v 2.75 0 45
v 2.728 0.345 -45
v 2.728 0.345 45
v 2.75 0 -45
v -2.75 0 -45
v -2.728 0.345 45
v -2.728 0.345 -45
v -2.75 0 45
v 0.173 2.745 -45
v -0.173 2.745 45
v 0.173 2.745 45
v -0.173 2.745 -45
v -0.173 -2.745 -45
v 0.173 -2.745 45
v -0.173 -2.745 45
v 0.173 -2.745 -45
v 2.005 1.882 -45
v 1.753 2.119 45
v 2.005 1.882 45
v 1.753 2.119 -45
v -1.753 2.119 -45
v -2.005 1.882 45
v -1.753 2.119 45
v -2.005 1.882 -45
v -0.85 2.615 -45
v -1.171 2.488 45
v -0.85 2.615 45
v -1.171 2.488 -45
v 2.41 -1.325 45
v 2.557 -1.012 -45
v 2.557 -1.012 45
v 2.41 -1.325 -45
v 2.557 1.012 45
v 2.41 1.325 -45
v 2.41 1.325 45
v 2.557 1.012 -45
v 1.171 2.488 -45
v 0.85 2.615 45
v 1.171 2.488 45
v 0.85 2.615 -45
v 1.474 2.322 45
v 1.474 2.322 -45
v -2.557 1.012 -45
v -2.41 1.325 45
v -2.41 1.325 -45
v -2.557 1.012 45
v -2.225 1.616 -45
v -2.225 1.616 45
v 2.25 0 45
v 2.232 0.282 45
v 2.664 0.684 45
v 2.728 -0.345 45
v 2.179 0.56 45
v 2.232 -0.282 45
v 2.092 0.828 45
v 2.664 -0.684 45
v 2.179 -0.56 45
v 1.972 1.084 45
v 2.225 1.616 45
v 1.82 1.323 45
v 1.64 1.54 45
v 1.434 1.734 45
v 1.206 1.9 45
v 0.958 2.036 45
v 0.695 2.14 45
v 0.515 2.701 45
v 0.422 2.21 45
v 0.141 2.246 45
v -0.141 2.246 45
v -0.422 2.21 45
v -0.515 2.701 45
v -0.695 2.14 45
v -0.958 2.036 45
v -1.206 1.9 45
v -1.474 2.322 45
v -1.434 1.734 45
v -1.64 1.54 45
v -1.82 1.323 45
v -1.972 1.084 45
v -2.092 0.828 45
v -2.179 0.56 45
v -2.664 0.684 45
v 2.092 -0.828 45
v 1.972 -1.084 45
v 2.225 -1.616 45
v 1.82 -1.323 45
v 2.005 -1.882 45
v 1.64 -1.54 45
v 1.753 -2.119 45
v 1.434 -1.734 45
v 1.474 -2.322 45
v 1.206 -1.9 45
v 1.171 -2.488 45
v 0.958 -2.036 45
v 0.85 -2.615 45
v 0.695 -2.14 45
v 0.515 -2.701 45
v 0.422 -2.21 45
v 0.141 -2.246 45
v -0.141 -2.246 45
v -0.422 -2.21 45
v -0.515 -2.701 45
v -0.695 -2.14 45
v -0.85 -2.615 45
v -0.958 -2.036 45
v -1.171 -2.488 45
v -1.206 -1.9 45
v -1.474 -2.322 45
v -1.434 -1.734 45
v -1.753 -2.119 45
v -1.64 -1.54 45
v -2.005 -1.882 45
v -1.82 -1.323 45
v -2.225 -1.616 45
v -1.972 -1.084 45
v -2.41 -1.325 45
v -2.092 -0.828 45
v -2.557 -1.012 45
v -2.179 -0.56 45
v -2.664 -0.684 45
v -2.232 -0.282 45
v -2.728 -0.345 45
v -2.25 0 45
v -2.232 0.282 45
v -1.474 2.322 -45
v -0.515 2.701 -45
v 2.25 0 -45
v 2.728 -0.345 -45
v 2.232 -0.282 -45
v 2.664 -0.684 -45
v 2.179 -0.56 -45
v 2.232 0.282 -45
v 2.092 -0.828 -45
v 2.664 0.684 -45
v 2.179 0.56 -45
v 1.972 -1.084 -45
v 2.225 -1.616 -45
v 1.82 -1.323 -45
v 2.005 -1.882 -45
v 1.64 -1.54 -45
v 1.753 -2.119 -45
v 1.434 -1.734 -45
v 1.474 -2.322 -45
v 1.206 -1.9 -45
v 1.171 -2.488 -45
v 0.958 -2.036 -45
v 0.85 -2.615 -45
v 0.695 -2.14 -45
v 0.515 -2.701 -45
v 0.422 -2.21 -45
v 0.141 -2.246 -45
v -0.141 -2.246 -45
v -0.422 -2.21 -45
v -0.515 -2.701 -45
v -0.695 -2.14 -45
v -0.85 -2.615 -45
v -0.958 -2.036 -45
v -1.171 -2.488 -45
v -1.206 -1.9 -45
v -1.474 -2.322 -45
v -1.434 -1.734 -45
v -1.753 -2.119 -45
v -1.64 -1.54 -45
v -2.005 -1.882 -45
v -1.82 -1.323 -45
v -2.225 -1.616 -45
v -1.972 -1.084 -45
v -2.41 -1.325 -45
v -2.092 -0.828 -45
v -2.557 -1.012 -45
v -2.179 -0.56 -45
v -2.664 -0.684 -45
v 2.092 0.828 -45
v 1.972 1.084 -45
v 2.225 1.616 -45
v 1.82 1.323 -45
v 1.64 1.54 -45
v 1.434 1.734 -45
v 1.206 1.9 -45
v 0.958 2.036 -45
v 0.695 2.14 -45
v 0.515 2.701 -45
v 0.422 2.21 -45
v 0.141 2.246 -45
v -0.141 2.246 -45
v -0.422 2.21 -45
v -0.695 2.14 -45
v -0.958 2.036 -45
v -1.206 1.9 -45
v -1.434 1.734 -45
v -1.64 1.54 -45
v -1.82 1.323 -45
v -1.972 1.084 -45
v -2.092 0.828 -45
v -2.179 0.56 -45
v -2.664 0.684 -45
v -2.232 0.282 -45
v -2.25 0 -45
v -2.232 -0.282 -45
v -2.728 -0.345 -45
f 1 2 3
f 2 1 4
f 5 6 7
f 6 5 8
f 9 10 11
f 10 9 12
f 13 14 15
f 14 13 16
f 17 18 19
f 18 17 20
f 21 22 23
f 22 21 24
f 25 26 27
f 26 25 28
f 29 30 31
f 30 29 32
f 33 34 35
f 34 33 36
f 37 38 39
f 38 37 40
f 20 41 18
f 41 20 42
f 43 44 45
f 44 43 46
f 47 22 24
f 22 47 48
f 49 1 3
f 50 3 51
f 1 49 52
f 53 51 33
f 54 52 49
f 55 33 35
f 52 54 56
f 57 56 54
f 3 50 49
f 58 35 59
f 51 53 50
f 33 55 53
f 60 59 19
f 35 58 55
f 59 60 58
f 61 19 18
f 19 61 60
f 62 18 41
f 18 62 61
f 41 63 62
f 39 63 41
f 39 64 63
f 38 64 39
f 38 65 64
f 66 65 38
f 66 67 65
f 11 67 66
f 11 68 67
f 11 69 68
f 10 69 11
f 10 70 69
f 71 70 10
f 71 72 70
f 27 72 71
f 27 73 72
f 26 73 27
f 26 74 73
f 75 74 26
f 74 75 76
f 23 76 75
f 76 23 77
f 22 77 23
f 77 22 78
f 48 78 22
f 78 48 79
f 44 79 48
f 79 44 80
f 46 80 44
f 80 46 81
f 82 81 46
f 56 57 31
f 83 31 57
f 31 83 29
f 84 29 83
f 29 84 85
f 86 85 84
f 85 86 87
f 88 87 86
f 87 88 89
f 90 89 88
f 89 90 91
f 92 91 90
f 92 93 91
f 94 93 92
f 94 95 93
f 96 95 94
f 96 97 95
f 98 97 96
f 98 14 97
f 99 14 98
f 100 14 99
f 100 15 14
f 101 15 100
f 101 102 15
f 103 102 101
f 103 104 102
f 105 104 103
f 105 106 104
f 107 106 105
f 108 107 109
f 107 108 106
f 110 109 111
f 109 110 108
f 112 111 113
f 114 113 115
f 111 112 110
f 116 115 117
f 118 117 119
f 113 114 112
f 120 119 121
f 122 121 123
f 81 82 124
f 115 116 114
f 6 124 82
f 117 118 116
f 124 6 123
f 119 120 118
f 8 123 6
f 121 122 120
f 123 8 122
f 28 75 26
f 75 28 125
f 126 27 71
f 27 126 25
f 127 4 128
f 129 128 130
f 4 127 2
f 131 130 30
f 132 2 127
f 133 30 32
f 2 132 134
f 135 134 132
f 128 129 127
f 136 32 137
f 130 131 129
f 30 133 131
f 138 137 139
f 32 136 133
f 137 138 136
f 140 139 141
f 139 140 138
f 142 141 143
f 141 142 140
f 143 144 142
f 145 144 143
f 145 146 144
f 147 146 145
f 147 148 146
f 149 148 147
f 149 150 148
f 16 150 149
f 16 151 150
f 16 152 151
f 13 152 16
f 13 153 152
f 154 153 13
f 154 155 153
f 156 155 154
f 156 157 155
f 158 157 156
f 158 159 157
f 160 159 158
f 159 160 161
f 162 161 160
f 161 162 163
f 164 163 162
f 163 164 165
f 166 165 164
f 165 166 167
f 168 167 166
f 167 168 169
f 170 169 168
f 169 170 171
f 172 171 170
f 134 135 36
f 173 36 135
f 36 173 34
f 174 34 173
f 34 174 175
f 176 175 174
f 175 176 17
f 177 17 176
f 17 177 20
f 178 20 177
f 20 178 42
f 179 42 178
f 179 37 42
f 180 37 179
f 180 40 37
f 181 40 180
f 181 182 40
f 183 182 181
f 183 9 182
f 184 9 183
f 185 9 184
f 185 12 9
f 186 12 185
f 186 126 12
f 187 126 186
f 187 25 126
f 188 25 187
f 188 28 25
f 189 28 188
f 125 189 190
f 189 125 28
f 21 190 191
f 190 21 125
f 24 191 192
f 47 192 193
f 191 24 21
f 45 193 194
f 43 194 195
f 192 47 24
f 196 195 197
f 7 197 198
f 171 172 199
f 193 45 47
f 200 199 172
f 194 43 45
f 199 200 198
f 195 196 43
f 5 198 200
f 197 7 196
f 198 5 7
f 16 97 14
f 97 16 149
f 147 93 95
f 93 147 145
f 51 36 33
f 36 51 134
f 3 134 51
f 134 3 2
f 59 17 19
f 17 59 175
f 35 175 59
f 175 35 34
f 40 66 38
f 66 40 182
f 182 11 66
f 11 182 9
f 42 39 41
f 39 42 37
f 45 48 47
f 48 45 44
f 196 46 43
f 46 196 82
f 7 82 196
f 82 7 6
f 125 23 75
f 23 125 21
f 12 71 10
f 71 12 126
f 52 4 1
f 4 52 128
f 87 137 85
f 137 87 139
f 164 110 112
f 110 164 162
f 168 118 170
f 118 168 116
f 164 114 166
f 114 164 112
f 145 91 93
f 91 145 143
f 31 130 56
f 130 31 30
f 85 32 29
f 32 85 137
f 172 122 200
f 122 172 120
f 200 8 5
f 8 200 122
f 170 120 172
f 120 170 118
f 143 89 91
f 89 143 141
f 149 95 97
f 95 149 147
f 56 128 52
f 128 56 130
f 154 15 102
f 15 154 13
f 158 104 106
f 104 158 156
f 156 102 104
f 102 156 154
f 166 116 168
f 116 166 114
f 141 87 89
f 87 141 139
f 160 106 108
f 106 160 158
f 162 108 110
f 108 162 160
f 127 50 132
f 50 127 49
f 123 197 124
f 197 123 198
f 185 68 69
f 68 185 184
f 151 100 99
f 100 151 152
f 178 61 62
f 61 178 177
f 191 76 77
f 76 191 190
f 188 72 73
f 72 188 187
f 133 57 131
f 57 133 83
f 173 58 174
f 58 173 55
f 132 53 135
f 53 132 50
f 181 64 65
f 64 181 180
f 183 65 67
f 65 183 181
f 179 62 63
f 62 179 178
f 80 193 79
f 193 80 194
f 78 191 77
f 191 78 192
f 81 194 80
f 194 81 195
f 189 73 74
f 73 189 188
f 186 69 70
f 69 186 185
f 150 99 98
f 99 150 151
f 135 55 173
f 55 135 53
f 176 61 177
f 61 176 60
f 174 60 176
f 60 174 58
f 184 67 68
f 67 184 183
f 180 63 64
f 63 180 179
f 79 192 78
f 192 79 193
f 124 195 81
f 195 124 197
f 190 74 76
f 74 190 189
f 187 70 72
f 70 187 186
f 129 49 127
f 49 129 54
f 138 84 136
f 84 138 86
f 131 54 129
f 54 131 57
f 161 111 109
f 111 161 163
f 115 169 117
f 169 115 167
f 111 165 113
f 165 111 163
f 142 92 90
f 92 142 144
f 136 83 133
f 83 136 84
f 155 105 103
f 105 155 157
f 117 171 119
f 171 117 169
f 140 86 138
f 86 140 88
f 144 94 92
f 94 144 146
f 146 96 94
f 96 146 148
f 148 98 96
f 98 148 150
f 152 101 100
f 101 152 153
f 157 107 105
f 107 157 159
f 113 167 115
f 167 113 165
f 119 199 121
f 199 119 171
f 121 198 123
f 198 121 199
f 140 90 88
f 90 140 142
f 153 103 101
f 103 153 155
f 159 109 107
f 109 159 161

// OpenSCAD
$fn = 50;


difference() {
	union() {
		translate(v = [0, 0, -45.0000000000]) {
			cylinder(h = 90, r = 2.7500000000);
		}
	}
	union() {
		translate(v = [0, 0, -100.0000000000]) {
			cylinder(h = 200, r = 2.2500000000);
		}
	}
}
